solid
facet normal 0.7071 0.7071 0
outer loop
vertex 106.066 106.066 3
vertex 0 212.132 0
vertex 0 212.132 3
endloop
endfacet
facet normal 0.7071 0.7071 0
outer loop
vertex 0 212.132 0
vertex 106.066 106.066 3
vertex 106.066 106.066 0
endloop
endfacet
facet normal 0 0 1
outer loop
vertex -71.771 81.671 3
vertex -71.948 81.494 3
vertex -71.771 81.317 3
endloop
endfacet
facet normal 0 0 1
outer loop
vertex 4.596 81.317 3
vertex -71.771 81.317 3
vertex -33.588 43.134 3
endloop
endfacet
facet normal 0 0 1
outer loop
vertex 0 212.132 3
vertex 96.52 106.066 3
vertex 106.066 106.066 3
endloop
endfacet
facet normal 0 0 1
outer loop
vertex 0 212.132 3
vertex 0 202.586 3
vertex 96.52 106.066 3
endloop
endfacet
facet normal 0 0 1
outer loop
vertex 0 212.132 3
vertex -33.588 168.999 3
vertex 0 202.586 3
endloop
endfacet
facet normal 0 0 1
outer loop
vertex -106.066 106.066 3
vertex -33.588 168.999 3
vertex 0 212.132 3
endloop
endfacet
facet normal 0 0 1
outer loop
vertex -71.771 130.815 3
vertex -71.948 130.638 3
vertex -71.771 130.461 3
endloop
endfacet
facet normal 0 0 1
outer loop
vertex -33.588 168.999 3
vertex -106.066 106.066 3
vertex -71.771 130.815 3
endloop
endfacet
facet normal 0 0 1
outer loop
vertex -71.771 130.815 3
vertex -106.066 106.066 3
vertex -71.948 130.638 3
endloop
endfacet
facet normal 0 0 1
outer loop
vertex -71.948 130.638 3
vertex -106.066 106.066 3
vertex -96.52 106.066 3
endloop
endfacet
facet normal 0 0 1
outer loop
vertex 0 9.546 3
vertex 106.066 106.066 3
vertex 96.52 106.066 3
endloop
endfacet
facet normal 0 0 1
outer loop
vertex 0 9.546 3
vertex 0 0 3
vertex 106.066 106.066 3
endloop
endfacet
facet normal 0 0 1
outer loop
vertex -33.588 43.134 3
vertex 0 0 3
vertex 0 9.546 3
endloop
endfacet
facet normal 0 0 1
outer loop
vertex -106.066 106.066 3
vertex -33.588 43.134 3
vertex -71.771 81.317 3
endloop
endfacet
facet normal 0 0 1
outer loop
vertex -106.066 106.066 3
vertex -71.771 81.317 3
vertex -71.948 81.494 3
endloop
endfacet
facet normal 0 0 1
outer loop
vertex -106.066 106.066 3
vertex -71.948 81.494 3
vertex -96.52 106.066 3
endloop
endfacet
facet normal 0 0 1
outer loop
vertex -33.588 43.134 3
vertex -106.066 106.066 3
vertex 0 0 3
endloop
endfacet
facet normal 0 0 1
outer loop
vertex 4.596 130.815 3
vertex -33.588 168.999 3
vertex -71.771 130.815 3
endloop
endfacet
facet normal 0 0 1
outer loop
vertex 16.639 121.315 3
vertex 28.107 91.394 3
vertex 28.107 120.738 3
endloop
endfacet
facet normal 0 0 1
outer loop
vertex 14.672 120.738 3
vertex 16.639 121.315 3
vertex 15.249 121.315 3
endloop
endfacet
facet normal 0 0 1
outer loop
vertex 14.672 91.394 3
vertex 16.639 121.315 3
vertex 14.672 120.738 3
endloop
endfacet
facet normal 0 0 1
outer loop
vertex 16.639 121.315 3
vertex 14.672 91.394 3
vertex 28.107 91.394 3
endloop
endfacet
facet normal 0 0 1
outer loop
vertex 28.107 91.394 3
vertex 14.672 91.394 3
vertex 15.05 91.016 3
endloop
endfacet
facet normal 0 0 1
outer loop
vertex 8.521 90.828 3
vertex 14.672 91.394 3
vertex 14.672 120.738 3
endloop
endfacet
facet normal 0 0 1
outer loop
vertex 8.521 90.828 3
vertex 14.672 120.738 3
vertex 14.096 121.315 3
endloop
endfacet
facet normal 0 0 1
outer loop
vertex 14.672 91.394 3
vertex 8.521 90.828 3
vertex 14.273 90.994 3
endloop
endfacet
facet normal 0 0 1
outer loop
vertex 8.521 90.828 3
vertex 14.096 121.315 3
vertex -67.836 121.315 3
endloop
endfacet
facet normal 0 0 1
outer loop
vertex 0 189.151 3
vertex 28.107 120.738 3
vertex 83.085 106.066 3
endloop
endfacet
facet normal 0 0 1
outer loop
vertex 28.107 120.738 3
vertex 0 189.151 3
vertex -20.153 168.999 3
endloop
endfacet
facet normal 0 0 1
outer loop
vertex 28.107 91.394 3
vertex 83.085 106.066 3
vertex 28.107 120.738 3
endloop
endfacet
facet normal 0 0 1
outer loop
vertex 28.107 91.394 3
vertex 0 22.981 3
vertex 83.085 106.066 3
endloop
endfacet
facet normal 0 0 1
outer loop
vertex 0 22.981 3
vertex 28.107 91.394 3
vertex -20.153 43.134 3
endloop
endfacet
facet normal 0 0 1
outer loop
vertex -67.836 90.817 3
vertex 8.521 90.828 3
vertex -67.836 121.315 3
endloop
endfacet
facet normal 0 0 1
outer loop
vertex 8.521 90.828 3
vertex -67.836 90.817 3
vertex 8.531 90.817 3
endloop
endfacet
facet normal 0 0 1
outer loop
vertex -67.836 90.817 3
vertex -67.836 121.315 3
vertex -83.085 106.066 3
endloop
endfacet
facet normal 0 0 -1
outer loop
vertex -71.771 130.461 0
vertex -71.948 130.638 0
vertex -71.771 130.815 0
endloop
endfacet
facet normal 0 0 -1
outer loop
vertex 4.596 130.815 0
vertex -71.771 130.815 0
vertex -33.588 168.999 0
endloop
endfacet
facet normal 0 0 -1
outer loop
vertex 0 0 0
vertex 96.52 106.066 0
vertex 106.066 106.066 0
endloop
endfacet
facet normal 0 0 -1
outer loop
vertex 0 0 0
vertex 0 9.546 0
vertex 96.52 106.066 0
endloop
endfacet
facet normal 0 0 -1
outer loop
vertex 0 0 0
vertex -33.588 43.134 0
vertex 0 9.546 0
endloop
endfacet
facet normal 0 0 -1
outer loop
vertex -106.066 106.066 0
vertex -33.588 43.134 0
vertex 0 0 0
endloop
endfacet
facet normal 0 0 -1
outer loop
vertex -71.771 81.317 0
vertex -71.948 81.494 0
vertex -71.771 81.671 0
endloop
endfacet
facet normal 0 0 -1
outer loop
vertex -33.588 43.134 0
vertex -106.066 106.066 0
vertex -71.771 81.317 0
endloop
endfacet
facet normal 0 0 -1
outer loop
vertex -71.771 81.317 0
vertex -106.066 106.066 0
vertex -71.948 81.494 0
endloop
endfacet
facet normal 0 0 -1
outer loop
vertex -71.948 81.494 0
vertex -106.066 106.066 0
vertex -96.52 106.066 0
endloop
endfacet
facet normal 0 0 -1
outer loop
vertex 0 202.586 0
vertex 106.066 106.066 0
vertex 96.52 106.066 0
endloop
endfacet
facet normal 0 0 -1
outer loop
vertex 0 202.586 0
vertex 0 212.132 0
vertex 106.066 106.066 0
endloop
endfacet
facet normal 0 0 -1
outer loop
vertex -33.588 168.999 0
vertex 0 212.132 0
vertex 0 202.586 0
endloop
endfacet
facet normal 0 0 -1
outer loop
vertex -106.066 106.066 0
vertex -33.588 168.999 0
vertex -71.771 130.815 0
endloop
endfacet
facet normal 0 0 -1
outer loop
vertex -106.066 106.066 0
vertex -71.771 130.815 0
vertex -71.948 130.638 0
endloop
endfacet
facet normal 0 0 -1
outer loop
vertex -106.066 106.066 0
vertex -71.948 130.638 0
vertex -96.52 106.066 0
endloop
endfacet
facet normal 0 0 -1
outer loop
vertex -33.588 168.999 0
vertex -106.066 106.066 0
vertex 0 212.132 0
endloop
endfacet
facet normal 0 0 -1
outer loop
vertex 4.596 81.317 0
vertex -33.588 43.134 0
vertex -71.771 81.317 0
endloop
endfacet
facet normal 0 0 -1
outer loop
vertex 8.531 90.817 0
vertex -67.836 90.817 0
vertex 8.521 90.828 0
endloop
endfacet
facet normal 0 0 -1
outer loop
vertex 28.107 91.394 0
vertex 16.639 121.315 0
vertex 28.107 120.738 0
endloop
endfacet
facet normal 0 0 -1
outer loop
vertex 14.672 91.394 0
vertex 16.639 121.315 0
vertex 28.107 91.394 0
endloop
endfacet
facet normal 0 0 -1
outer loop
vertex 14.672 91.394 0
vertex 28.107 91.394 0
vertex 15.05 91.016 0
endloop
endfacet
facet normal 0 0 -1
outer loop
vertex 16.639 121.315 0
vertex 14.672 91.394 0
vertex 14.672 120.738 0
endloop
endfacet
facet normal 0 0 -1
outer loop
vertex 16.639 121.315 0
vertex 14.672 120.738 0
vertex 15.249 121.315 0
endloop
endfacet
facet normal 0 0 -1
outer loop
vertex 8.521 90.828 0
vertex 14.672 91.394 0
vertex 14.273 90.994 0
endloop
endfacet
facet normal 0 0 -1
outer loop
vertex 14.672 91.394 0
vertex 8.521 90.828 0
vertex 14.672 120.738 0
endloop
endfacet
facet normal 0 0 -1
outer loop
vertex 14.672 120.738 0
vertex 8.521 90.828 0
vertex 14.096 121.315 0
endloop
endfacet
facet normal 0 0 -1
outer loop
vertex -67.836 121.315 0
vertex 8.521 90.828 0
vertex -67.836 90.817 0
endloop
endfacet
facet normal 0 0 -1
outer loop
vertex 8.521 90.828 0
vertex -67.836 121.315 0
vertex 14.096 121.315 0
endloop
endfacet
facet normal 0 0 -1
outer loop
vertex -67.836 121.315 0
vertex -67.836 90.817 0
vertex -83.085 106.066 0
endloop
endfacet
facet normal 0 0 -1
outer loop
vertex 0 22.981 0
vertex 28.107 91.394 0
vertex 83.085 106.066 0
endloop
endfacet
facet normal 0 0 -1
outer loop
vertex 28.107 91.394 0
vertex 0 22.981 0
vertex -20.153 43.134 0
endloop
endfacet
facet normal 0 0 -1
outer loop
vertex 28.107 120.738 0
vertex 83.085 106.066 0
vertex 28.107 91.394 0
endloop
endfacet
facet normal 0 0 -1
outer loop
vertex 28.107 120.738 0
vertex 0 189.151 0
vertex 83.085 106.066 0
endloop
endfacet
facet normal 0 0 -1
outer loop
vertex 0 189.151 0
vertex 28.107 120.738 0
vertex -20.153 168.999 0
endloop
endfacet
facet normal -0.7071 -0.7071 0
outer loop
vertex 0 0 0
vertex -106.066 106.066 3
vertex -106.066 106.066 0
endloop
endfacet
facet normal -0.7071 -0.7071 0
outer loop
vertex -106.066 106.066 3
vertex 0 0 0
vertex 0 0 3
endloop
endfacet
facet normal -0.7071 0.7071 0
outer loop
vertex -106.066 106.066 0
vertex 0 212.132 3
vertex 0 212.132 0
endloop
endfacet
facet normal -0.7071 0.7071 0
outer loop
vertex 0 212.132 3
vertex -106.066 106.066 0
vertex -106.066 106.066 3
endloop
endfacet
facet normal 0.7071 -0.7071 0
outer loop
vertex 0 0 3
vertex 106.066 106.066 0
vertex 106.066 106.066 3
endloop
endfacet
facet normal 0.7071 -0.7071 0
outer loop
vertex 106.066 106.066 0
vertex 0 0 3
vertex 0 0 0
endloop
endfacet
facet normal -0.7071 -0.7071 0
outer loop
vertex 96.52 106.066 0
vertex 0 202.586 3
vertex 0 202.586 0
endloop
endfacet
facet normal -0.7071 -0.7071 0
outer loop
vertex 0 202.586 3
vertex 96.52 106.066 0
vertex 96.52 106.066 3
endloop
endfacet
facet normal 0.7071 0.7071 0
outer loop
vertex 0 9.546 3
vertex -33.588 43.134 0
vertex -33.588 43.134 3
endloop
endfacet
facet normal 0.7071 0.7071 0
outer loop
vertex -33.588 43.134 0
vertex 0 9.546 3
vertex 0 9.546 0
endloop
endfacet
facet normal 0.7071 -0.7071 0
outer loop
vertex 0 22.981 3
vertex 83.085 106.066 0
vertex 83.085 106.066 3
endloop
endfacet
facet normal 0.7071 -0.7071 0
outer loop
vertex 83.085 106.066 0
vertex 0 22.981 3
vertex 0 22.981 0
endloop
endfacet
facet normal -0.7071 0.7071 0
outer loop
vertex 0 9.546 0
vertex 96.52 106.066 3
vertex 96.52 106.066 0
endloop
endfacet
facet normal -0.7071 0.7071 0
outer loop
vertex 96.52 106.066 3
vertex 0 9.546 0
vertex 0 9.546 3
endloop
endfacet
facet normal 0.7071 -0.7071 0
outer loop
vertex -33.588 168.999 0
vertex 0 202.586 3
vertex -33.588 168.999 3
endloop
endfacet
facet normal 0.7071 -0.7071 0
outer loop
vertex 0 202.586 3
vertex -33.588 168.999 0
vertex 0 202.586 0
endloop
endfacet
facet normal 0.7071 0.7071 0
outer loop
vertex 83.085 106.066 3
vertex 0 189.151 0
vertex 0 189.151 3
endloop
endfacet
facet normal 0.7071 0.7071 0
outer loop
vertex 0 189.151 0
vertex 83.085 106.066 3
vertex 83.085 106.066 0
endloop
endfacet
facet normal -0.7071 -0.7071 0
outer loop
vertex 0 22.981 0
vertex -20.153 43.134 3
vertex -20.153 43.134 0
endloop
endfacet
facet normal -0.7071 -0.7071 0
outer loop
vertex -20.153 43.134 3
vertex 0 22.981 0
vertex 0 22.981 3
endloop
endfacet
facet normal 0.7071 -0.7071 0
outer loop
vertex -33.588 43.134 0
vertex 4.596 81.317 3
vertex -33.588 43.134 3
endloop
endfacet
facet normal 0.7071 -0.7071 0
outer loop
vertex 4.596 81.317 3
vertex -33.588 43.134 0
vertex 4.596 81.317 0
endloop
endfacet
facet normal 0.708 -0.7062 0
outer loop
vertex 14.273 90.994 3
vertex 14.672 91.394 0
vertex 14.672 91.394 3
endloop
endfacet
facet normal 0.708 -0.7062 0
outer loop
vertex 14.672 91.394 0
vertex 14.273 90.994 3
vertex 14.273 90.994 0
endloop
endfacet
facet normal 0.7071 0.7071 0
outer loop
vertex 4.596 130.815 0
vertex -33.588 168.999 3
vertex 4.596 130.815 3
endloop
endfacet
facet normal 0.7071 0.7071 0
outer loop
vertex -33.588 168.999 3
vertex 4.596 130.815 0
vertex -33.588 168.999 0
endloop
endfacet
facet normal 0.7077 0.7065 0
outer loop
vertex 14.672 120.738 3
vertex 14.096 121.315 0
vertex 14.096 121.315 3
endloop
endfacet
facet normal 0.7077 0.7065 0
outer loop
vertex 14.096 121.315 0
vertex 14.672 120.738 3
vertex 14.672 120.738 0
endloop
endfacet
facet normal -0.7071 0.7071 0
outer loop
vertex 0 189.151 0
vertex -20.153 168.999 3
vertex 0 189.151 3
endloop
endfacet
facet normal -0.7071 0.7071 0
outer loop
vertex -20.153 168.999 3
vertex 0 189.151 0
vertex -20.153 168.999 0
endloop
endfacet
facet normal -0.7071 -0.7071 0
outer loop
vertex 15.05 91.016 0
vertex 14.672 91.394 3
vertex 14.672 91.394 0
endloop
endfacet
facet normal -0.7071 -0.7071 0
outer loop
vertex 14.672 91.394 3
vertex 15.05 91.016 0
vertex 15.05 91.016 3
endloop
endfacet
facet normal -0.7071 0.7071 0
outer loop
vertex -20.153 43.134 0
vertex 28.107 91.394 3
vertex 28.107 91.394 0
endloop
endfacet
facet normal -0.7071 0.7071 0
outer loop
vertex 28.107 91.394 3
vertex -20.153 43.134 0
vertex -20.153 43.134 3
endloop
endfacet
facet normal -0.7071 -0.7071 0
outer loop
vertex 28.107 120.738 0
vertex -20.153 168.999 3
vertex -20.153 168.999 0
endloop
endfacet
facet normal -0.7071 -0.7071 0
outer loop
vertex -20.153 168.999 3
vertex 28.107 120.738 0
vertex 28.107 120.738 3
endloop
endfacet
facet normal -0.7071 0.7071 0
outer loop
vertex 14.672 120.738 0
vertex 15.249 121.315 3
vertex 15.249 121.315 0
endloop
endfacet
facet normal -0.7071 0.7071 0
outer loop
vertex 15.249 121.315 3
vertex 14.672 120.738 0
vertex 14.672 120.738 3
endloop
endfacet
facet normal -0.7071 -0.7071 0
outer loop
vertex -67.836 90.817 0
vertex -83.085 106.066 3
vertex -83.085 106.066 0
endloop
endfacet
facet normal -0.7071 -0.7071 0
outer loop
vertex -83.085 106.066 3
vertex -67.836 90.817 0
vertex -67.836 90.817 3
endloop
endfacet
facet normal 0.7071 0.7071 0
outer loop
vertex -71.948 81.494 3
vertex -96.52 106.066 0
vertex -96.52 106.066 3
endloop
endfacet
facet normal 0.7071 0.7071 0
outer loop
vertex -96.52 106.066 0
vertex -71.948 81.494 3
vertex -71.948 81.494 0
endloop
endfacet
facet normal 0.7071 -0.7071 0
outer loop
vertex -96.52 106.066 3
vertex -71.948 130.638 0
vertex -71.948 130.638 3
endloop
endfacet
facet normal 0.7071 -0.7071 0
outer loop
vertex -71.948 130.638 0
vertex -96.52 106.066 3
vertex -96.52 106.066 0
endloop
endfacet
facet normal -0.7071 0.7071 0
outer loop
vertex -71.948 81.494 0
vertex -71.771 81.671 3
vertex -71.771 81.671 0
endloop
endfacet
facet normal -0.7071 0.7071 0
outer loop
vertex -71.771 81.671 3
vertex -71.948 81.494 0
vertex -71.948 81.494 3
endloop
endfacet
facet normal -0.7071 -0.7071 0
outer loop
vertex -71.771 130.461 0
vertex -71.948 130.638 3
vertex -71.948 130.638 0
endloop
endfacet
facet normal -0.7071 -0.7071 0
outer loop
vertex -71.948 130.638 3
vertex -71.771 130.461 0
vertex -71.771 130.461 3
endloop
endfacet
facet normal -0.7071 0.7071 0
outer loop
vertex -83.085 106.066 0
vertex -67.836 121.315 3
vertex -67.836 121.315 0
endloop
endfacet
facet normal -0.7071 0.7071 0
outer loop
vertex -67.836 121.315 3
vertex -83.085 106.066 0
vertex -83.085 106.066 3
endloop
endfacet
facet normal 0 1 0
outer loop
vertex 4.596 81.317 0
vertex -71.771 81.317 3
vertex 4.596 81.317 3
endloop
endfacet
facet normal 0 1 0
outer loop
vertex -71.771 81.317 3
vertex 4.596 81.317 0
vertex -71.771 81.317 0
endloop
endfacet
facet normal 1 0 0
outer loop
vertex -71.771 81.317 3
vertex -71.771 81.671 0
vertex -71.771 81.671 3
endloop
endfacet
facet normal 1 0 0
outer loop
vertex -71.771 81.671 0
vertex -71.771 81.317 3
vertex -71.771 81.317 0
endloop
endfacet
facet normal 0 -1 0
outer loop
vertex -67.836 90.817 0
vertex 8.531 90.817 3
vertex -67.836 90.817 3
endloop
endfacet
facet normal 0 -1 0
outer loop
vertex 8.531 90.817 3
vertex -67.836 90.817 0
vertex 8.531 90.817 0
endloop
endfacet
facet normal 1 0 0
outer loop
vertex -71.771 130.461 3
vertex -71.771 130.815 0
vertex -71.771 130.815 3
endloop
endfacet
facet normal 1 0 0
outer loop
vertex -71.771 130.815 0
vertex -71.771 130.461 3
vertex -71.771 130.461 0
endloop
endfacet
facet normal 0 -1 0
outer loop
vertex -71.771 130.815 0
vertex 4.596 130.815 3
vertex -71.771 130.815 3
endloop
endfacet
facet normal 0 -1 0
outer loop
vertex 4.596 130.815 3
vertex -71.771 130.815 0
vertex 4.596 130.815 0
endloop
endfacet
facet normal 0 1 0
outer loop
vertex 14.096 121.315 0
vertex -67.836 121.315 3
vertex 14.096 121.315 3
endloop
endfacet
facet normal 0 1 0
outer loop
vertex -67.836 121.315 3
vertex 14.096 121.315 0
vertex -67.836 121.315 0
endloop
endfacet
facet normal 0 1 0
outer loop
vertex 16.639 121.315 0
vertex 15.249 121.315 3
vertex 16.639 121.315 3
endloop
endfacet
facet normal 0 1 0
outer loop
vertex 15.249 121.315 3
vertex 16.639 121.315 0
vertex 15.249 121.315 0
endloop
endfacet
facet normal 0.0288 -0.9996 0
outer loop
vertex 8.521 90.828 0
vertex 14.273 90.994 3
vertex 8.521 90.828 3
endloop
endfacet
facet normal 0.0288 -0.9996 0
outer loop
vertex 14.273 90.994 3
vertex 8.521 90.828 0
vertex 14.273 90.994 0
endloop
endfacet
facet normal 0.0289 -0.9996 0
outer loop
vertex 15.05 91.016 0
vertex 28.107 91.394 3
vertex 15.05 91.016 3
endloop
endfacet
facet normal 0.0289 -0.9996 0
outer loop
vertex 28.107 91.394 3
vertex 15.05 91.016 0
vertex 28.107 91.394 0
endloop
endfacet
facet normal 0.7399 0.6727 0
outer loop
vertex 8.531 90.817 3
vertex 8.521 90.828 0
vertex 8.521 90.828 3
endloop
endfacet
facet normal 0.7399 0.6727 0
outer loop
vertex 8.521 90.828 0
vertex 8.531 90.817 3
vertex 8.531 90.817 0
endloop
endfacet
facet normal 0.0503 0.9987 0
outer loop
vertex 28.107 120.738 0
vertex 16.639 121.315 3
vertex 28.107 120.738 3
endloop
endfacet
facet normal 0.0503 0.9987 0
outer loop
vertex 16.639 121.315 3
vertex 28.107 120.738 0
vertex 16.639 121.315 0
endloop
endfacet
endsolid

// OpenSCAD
xc = 75.0;
yc = 75.0;
chain_l = 127.0;
chain_w = 9.5;
chain_l_h = chain_l / 2.0;
chain_w_h = chain_w / 2.0;
o_w = 150.0;
o_h = 3.0;
chain_l2 = 38.0;

$vpt = [0, o_w / sqrt(2.0), 0];
$vpr = [0, 0, 0];

union(){
    rotate([0, 0, 45]) {
        difference() {
            // base
            cube([o_w, o_w, o_h], center = false);
            // bottom long - notes are for unrotated picture - just comment out the rotation
            translate([xc - chain_l_h - chain_w_h, yc - chain_l_h - chain_w_h, -1.0]) {
                cube([chain_l + chain_w, chain_w, 2*o_h], center = false);
            }
            // right long
            translate([xc + chain_l_h + chain_w_h, yc - chain_l_h - chain_w_h, -1.0]){
                rotate([0, 0, 90]){
                    cube([chain_l + chain_w, chain_w, 2*o_h], center = false);
                }
            }
            // left arrow head
            translate([xc - chain_l_h + chain_w_h, yc - chain_l_h - chain_w_h, -1.0]) {
                rotate([0, 0, 90]) {
                    cube([chain_l2 + chain_w, chain_w, 2*o_h], center = false);
                }
            }
            // right arrow head
            translate([xc + chain_l_h - chain_l2 - chain_w_h, yc + chain_l_h - chain_w_h, -1.0]){
                cube([chain_l2 + chain_w, chain_w, 2*o_h], center = false);
            }
            // left back of arrow head
            translate([xc - chain_l_h - chain_w_h, yc - chain_l_h + chain_l2 - chain_w_h, -1.0]){
                cube([chain_l_h + chain_w_h, chain_w, 2*o_h], center = false);
            }
            // top back of arrow head
            translate([xc + chain_l_h - chain_l2 - chain_w_h, yc, -1.0]){
                cube([chain_w, chain_l_h + chain_w_h, 2*o_h], center = false);
            }
            // left arrow back
            translate([xc - chain_l_h - chain_w_h, yc + chain_l_h - chain_l2 + 8.0, -1.0]){
                cube([chain_w, chain_l2 + chain_w_h - 8.0, 2*o_h], center = false);
            }
            // top arrow back
            translate([xc - chain_l_h - chain_w_h, yc + chain_l_h - chain_w_h, -1.0]){
                cube([chain_l2 + chain_w_h - 8.0, chain_w, 2*o_h], center = false);
            }
            // bottom arrow shaft
            translate([xc - chain_w_h, yc - chain_l_h + chain_l2 - chain_w_h, -1.0]){
                rotate([0, 0, 45]){
                    cube([chain_w, chain_l_h*sqrt(2), 2*o_h], center = false);
                }
            }
            // top arrow shaft
            translate([xc + chain_l_h - chain_l2 + chain_w_h, yc + chain_w_h, -1.0]){
                rotate([0, 0, 135]){
                    cube([chain_l_h*sqrt(2), chain_w, 2*o_h], center = false);
                }
            }
            // bottom extra triangle on arrow shaft
            translate([0, 0, -1.0]) {
                linear_extrude(2*o_h){
                    polygon([[xc - chain_w_h, yc - chain_l_h + chain_l2 - chain_w_h],
                             [xc + chain_w, yc - chain_l_h + chain_l2 - chain_w_h],
                             [xc - chain_w_h, yc - chain_l_h + chain_l2 + chain_w - 0.8]]);
                }
            }
            translate([0, 0, -1.0]) {
                linear_extrude(2*o_h){
                    polygon([[xc + chain_l_h - chain_l2 + chain_w_h, yc + .01],
                             [xc + chain_l_h - chain_l2 - chain_w_h + 0.9, yc + .01],
                             [xc + chain_l_h - chain_l2 + chain_w_h, yc - chain_w]]);
                }
            }
        }
    }
}
